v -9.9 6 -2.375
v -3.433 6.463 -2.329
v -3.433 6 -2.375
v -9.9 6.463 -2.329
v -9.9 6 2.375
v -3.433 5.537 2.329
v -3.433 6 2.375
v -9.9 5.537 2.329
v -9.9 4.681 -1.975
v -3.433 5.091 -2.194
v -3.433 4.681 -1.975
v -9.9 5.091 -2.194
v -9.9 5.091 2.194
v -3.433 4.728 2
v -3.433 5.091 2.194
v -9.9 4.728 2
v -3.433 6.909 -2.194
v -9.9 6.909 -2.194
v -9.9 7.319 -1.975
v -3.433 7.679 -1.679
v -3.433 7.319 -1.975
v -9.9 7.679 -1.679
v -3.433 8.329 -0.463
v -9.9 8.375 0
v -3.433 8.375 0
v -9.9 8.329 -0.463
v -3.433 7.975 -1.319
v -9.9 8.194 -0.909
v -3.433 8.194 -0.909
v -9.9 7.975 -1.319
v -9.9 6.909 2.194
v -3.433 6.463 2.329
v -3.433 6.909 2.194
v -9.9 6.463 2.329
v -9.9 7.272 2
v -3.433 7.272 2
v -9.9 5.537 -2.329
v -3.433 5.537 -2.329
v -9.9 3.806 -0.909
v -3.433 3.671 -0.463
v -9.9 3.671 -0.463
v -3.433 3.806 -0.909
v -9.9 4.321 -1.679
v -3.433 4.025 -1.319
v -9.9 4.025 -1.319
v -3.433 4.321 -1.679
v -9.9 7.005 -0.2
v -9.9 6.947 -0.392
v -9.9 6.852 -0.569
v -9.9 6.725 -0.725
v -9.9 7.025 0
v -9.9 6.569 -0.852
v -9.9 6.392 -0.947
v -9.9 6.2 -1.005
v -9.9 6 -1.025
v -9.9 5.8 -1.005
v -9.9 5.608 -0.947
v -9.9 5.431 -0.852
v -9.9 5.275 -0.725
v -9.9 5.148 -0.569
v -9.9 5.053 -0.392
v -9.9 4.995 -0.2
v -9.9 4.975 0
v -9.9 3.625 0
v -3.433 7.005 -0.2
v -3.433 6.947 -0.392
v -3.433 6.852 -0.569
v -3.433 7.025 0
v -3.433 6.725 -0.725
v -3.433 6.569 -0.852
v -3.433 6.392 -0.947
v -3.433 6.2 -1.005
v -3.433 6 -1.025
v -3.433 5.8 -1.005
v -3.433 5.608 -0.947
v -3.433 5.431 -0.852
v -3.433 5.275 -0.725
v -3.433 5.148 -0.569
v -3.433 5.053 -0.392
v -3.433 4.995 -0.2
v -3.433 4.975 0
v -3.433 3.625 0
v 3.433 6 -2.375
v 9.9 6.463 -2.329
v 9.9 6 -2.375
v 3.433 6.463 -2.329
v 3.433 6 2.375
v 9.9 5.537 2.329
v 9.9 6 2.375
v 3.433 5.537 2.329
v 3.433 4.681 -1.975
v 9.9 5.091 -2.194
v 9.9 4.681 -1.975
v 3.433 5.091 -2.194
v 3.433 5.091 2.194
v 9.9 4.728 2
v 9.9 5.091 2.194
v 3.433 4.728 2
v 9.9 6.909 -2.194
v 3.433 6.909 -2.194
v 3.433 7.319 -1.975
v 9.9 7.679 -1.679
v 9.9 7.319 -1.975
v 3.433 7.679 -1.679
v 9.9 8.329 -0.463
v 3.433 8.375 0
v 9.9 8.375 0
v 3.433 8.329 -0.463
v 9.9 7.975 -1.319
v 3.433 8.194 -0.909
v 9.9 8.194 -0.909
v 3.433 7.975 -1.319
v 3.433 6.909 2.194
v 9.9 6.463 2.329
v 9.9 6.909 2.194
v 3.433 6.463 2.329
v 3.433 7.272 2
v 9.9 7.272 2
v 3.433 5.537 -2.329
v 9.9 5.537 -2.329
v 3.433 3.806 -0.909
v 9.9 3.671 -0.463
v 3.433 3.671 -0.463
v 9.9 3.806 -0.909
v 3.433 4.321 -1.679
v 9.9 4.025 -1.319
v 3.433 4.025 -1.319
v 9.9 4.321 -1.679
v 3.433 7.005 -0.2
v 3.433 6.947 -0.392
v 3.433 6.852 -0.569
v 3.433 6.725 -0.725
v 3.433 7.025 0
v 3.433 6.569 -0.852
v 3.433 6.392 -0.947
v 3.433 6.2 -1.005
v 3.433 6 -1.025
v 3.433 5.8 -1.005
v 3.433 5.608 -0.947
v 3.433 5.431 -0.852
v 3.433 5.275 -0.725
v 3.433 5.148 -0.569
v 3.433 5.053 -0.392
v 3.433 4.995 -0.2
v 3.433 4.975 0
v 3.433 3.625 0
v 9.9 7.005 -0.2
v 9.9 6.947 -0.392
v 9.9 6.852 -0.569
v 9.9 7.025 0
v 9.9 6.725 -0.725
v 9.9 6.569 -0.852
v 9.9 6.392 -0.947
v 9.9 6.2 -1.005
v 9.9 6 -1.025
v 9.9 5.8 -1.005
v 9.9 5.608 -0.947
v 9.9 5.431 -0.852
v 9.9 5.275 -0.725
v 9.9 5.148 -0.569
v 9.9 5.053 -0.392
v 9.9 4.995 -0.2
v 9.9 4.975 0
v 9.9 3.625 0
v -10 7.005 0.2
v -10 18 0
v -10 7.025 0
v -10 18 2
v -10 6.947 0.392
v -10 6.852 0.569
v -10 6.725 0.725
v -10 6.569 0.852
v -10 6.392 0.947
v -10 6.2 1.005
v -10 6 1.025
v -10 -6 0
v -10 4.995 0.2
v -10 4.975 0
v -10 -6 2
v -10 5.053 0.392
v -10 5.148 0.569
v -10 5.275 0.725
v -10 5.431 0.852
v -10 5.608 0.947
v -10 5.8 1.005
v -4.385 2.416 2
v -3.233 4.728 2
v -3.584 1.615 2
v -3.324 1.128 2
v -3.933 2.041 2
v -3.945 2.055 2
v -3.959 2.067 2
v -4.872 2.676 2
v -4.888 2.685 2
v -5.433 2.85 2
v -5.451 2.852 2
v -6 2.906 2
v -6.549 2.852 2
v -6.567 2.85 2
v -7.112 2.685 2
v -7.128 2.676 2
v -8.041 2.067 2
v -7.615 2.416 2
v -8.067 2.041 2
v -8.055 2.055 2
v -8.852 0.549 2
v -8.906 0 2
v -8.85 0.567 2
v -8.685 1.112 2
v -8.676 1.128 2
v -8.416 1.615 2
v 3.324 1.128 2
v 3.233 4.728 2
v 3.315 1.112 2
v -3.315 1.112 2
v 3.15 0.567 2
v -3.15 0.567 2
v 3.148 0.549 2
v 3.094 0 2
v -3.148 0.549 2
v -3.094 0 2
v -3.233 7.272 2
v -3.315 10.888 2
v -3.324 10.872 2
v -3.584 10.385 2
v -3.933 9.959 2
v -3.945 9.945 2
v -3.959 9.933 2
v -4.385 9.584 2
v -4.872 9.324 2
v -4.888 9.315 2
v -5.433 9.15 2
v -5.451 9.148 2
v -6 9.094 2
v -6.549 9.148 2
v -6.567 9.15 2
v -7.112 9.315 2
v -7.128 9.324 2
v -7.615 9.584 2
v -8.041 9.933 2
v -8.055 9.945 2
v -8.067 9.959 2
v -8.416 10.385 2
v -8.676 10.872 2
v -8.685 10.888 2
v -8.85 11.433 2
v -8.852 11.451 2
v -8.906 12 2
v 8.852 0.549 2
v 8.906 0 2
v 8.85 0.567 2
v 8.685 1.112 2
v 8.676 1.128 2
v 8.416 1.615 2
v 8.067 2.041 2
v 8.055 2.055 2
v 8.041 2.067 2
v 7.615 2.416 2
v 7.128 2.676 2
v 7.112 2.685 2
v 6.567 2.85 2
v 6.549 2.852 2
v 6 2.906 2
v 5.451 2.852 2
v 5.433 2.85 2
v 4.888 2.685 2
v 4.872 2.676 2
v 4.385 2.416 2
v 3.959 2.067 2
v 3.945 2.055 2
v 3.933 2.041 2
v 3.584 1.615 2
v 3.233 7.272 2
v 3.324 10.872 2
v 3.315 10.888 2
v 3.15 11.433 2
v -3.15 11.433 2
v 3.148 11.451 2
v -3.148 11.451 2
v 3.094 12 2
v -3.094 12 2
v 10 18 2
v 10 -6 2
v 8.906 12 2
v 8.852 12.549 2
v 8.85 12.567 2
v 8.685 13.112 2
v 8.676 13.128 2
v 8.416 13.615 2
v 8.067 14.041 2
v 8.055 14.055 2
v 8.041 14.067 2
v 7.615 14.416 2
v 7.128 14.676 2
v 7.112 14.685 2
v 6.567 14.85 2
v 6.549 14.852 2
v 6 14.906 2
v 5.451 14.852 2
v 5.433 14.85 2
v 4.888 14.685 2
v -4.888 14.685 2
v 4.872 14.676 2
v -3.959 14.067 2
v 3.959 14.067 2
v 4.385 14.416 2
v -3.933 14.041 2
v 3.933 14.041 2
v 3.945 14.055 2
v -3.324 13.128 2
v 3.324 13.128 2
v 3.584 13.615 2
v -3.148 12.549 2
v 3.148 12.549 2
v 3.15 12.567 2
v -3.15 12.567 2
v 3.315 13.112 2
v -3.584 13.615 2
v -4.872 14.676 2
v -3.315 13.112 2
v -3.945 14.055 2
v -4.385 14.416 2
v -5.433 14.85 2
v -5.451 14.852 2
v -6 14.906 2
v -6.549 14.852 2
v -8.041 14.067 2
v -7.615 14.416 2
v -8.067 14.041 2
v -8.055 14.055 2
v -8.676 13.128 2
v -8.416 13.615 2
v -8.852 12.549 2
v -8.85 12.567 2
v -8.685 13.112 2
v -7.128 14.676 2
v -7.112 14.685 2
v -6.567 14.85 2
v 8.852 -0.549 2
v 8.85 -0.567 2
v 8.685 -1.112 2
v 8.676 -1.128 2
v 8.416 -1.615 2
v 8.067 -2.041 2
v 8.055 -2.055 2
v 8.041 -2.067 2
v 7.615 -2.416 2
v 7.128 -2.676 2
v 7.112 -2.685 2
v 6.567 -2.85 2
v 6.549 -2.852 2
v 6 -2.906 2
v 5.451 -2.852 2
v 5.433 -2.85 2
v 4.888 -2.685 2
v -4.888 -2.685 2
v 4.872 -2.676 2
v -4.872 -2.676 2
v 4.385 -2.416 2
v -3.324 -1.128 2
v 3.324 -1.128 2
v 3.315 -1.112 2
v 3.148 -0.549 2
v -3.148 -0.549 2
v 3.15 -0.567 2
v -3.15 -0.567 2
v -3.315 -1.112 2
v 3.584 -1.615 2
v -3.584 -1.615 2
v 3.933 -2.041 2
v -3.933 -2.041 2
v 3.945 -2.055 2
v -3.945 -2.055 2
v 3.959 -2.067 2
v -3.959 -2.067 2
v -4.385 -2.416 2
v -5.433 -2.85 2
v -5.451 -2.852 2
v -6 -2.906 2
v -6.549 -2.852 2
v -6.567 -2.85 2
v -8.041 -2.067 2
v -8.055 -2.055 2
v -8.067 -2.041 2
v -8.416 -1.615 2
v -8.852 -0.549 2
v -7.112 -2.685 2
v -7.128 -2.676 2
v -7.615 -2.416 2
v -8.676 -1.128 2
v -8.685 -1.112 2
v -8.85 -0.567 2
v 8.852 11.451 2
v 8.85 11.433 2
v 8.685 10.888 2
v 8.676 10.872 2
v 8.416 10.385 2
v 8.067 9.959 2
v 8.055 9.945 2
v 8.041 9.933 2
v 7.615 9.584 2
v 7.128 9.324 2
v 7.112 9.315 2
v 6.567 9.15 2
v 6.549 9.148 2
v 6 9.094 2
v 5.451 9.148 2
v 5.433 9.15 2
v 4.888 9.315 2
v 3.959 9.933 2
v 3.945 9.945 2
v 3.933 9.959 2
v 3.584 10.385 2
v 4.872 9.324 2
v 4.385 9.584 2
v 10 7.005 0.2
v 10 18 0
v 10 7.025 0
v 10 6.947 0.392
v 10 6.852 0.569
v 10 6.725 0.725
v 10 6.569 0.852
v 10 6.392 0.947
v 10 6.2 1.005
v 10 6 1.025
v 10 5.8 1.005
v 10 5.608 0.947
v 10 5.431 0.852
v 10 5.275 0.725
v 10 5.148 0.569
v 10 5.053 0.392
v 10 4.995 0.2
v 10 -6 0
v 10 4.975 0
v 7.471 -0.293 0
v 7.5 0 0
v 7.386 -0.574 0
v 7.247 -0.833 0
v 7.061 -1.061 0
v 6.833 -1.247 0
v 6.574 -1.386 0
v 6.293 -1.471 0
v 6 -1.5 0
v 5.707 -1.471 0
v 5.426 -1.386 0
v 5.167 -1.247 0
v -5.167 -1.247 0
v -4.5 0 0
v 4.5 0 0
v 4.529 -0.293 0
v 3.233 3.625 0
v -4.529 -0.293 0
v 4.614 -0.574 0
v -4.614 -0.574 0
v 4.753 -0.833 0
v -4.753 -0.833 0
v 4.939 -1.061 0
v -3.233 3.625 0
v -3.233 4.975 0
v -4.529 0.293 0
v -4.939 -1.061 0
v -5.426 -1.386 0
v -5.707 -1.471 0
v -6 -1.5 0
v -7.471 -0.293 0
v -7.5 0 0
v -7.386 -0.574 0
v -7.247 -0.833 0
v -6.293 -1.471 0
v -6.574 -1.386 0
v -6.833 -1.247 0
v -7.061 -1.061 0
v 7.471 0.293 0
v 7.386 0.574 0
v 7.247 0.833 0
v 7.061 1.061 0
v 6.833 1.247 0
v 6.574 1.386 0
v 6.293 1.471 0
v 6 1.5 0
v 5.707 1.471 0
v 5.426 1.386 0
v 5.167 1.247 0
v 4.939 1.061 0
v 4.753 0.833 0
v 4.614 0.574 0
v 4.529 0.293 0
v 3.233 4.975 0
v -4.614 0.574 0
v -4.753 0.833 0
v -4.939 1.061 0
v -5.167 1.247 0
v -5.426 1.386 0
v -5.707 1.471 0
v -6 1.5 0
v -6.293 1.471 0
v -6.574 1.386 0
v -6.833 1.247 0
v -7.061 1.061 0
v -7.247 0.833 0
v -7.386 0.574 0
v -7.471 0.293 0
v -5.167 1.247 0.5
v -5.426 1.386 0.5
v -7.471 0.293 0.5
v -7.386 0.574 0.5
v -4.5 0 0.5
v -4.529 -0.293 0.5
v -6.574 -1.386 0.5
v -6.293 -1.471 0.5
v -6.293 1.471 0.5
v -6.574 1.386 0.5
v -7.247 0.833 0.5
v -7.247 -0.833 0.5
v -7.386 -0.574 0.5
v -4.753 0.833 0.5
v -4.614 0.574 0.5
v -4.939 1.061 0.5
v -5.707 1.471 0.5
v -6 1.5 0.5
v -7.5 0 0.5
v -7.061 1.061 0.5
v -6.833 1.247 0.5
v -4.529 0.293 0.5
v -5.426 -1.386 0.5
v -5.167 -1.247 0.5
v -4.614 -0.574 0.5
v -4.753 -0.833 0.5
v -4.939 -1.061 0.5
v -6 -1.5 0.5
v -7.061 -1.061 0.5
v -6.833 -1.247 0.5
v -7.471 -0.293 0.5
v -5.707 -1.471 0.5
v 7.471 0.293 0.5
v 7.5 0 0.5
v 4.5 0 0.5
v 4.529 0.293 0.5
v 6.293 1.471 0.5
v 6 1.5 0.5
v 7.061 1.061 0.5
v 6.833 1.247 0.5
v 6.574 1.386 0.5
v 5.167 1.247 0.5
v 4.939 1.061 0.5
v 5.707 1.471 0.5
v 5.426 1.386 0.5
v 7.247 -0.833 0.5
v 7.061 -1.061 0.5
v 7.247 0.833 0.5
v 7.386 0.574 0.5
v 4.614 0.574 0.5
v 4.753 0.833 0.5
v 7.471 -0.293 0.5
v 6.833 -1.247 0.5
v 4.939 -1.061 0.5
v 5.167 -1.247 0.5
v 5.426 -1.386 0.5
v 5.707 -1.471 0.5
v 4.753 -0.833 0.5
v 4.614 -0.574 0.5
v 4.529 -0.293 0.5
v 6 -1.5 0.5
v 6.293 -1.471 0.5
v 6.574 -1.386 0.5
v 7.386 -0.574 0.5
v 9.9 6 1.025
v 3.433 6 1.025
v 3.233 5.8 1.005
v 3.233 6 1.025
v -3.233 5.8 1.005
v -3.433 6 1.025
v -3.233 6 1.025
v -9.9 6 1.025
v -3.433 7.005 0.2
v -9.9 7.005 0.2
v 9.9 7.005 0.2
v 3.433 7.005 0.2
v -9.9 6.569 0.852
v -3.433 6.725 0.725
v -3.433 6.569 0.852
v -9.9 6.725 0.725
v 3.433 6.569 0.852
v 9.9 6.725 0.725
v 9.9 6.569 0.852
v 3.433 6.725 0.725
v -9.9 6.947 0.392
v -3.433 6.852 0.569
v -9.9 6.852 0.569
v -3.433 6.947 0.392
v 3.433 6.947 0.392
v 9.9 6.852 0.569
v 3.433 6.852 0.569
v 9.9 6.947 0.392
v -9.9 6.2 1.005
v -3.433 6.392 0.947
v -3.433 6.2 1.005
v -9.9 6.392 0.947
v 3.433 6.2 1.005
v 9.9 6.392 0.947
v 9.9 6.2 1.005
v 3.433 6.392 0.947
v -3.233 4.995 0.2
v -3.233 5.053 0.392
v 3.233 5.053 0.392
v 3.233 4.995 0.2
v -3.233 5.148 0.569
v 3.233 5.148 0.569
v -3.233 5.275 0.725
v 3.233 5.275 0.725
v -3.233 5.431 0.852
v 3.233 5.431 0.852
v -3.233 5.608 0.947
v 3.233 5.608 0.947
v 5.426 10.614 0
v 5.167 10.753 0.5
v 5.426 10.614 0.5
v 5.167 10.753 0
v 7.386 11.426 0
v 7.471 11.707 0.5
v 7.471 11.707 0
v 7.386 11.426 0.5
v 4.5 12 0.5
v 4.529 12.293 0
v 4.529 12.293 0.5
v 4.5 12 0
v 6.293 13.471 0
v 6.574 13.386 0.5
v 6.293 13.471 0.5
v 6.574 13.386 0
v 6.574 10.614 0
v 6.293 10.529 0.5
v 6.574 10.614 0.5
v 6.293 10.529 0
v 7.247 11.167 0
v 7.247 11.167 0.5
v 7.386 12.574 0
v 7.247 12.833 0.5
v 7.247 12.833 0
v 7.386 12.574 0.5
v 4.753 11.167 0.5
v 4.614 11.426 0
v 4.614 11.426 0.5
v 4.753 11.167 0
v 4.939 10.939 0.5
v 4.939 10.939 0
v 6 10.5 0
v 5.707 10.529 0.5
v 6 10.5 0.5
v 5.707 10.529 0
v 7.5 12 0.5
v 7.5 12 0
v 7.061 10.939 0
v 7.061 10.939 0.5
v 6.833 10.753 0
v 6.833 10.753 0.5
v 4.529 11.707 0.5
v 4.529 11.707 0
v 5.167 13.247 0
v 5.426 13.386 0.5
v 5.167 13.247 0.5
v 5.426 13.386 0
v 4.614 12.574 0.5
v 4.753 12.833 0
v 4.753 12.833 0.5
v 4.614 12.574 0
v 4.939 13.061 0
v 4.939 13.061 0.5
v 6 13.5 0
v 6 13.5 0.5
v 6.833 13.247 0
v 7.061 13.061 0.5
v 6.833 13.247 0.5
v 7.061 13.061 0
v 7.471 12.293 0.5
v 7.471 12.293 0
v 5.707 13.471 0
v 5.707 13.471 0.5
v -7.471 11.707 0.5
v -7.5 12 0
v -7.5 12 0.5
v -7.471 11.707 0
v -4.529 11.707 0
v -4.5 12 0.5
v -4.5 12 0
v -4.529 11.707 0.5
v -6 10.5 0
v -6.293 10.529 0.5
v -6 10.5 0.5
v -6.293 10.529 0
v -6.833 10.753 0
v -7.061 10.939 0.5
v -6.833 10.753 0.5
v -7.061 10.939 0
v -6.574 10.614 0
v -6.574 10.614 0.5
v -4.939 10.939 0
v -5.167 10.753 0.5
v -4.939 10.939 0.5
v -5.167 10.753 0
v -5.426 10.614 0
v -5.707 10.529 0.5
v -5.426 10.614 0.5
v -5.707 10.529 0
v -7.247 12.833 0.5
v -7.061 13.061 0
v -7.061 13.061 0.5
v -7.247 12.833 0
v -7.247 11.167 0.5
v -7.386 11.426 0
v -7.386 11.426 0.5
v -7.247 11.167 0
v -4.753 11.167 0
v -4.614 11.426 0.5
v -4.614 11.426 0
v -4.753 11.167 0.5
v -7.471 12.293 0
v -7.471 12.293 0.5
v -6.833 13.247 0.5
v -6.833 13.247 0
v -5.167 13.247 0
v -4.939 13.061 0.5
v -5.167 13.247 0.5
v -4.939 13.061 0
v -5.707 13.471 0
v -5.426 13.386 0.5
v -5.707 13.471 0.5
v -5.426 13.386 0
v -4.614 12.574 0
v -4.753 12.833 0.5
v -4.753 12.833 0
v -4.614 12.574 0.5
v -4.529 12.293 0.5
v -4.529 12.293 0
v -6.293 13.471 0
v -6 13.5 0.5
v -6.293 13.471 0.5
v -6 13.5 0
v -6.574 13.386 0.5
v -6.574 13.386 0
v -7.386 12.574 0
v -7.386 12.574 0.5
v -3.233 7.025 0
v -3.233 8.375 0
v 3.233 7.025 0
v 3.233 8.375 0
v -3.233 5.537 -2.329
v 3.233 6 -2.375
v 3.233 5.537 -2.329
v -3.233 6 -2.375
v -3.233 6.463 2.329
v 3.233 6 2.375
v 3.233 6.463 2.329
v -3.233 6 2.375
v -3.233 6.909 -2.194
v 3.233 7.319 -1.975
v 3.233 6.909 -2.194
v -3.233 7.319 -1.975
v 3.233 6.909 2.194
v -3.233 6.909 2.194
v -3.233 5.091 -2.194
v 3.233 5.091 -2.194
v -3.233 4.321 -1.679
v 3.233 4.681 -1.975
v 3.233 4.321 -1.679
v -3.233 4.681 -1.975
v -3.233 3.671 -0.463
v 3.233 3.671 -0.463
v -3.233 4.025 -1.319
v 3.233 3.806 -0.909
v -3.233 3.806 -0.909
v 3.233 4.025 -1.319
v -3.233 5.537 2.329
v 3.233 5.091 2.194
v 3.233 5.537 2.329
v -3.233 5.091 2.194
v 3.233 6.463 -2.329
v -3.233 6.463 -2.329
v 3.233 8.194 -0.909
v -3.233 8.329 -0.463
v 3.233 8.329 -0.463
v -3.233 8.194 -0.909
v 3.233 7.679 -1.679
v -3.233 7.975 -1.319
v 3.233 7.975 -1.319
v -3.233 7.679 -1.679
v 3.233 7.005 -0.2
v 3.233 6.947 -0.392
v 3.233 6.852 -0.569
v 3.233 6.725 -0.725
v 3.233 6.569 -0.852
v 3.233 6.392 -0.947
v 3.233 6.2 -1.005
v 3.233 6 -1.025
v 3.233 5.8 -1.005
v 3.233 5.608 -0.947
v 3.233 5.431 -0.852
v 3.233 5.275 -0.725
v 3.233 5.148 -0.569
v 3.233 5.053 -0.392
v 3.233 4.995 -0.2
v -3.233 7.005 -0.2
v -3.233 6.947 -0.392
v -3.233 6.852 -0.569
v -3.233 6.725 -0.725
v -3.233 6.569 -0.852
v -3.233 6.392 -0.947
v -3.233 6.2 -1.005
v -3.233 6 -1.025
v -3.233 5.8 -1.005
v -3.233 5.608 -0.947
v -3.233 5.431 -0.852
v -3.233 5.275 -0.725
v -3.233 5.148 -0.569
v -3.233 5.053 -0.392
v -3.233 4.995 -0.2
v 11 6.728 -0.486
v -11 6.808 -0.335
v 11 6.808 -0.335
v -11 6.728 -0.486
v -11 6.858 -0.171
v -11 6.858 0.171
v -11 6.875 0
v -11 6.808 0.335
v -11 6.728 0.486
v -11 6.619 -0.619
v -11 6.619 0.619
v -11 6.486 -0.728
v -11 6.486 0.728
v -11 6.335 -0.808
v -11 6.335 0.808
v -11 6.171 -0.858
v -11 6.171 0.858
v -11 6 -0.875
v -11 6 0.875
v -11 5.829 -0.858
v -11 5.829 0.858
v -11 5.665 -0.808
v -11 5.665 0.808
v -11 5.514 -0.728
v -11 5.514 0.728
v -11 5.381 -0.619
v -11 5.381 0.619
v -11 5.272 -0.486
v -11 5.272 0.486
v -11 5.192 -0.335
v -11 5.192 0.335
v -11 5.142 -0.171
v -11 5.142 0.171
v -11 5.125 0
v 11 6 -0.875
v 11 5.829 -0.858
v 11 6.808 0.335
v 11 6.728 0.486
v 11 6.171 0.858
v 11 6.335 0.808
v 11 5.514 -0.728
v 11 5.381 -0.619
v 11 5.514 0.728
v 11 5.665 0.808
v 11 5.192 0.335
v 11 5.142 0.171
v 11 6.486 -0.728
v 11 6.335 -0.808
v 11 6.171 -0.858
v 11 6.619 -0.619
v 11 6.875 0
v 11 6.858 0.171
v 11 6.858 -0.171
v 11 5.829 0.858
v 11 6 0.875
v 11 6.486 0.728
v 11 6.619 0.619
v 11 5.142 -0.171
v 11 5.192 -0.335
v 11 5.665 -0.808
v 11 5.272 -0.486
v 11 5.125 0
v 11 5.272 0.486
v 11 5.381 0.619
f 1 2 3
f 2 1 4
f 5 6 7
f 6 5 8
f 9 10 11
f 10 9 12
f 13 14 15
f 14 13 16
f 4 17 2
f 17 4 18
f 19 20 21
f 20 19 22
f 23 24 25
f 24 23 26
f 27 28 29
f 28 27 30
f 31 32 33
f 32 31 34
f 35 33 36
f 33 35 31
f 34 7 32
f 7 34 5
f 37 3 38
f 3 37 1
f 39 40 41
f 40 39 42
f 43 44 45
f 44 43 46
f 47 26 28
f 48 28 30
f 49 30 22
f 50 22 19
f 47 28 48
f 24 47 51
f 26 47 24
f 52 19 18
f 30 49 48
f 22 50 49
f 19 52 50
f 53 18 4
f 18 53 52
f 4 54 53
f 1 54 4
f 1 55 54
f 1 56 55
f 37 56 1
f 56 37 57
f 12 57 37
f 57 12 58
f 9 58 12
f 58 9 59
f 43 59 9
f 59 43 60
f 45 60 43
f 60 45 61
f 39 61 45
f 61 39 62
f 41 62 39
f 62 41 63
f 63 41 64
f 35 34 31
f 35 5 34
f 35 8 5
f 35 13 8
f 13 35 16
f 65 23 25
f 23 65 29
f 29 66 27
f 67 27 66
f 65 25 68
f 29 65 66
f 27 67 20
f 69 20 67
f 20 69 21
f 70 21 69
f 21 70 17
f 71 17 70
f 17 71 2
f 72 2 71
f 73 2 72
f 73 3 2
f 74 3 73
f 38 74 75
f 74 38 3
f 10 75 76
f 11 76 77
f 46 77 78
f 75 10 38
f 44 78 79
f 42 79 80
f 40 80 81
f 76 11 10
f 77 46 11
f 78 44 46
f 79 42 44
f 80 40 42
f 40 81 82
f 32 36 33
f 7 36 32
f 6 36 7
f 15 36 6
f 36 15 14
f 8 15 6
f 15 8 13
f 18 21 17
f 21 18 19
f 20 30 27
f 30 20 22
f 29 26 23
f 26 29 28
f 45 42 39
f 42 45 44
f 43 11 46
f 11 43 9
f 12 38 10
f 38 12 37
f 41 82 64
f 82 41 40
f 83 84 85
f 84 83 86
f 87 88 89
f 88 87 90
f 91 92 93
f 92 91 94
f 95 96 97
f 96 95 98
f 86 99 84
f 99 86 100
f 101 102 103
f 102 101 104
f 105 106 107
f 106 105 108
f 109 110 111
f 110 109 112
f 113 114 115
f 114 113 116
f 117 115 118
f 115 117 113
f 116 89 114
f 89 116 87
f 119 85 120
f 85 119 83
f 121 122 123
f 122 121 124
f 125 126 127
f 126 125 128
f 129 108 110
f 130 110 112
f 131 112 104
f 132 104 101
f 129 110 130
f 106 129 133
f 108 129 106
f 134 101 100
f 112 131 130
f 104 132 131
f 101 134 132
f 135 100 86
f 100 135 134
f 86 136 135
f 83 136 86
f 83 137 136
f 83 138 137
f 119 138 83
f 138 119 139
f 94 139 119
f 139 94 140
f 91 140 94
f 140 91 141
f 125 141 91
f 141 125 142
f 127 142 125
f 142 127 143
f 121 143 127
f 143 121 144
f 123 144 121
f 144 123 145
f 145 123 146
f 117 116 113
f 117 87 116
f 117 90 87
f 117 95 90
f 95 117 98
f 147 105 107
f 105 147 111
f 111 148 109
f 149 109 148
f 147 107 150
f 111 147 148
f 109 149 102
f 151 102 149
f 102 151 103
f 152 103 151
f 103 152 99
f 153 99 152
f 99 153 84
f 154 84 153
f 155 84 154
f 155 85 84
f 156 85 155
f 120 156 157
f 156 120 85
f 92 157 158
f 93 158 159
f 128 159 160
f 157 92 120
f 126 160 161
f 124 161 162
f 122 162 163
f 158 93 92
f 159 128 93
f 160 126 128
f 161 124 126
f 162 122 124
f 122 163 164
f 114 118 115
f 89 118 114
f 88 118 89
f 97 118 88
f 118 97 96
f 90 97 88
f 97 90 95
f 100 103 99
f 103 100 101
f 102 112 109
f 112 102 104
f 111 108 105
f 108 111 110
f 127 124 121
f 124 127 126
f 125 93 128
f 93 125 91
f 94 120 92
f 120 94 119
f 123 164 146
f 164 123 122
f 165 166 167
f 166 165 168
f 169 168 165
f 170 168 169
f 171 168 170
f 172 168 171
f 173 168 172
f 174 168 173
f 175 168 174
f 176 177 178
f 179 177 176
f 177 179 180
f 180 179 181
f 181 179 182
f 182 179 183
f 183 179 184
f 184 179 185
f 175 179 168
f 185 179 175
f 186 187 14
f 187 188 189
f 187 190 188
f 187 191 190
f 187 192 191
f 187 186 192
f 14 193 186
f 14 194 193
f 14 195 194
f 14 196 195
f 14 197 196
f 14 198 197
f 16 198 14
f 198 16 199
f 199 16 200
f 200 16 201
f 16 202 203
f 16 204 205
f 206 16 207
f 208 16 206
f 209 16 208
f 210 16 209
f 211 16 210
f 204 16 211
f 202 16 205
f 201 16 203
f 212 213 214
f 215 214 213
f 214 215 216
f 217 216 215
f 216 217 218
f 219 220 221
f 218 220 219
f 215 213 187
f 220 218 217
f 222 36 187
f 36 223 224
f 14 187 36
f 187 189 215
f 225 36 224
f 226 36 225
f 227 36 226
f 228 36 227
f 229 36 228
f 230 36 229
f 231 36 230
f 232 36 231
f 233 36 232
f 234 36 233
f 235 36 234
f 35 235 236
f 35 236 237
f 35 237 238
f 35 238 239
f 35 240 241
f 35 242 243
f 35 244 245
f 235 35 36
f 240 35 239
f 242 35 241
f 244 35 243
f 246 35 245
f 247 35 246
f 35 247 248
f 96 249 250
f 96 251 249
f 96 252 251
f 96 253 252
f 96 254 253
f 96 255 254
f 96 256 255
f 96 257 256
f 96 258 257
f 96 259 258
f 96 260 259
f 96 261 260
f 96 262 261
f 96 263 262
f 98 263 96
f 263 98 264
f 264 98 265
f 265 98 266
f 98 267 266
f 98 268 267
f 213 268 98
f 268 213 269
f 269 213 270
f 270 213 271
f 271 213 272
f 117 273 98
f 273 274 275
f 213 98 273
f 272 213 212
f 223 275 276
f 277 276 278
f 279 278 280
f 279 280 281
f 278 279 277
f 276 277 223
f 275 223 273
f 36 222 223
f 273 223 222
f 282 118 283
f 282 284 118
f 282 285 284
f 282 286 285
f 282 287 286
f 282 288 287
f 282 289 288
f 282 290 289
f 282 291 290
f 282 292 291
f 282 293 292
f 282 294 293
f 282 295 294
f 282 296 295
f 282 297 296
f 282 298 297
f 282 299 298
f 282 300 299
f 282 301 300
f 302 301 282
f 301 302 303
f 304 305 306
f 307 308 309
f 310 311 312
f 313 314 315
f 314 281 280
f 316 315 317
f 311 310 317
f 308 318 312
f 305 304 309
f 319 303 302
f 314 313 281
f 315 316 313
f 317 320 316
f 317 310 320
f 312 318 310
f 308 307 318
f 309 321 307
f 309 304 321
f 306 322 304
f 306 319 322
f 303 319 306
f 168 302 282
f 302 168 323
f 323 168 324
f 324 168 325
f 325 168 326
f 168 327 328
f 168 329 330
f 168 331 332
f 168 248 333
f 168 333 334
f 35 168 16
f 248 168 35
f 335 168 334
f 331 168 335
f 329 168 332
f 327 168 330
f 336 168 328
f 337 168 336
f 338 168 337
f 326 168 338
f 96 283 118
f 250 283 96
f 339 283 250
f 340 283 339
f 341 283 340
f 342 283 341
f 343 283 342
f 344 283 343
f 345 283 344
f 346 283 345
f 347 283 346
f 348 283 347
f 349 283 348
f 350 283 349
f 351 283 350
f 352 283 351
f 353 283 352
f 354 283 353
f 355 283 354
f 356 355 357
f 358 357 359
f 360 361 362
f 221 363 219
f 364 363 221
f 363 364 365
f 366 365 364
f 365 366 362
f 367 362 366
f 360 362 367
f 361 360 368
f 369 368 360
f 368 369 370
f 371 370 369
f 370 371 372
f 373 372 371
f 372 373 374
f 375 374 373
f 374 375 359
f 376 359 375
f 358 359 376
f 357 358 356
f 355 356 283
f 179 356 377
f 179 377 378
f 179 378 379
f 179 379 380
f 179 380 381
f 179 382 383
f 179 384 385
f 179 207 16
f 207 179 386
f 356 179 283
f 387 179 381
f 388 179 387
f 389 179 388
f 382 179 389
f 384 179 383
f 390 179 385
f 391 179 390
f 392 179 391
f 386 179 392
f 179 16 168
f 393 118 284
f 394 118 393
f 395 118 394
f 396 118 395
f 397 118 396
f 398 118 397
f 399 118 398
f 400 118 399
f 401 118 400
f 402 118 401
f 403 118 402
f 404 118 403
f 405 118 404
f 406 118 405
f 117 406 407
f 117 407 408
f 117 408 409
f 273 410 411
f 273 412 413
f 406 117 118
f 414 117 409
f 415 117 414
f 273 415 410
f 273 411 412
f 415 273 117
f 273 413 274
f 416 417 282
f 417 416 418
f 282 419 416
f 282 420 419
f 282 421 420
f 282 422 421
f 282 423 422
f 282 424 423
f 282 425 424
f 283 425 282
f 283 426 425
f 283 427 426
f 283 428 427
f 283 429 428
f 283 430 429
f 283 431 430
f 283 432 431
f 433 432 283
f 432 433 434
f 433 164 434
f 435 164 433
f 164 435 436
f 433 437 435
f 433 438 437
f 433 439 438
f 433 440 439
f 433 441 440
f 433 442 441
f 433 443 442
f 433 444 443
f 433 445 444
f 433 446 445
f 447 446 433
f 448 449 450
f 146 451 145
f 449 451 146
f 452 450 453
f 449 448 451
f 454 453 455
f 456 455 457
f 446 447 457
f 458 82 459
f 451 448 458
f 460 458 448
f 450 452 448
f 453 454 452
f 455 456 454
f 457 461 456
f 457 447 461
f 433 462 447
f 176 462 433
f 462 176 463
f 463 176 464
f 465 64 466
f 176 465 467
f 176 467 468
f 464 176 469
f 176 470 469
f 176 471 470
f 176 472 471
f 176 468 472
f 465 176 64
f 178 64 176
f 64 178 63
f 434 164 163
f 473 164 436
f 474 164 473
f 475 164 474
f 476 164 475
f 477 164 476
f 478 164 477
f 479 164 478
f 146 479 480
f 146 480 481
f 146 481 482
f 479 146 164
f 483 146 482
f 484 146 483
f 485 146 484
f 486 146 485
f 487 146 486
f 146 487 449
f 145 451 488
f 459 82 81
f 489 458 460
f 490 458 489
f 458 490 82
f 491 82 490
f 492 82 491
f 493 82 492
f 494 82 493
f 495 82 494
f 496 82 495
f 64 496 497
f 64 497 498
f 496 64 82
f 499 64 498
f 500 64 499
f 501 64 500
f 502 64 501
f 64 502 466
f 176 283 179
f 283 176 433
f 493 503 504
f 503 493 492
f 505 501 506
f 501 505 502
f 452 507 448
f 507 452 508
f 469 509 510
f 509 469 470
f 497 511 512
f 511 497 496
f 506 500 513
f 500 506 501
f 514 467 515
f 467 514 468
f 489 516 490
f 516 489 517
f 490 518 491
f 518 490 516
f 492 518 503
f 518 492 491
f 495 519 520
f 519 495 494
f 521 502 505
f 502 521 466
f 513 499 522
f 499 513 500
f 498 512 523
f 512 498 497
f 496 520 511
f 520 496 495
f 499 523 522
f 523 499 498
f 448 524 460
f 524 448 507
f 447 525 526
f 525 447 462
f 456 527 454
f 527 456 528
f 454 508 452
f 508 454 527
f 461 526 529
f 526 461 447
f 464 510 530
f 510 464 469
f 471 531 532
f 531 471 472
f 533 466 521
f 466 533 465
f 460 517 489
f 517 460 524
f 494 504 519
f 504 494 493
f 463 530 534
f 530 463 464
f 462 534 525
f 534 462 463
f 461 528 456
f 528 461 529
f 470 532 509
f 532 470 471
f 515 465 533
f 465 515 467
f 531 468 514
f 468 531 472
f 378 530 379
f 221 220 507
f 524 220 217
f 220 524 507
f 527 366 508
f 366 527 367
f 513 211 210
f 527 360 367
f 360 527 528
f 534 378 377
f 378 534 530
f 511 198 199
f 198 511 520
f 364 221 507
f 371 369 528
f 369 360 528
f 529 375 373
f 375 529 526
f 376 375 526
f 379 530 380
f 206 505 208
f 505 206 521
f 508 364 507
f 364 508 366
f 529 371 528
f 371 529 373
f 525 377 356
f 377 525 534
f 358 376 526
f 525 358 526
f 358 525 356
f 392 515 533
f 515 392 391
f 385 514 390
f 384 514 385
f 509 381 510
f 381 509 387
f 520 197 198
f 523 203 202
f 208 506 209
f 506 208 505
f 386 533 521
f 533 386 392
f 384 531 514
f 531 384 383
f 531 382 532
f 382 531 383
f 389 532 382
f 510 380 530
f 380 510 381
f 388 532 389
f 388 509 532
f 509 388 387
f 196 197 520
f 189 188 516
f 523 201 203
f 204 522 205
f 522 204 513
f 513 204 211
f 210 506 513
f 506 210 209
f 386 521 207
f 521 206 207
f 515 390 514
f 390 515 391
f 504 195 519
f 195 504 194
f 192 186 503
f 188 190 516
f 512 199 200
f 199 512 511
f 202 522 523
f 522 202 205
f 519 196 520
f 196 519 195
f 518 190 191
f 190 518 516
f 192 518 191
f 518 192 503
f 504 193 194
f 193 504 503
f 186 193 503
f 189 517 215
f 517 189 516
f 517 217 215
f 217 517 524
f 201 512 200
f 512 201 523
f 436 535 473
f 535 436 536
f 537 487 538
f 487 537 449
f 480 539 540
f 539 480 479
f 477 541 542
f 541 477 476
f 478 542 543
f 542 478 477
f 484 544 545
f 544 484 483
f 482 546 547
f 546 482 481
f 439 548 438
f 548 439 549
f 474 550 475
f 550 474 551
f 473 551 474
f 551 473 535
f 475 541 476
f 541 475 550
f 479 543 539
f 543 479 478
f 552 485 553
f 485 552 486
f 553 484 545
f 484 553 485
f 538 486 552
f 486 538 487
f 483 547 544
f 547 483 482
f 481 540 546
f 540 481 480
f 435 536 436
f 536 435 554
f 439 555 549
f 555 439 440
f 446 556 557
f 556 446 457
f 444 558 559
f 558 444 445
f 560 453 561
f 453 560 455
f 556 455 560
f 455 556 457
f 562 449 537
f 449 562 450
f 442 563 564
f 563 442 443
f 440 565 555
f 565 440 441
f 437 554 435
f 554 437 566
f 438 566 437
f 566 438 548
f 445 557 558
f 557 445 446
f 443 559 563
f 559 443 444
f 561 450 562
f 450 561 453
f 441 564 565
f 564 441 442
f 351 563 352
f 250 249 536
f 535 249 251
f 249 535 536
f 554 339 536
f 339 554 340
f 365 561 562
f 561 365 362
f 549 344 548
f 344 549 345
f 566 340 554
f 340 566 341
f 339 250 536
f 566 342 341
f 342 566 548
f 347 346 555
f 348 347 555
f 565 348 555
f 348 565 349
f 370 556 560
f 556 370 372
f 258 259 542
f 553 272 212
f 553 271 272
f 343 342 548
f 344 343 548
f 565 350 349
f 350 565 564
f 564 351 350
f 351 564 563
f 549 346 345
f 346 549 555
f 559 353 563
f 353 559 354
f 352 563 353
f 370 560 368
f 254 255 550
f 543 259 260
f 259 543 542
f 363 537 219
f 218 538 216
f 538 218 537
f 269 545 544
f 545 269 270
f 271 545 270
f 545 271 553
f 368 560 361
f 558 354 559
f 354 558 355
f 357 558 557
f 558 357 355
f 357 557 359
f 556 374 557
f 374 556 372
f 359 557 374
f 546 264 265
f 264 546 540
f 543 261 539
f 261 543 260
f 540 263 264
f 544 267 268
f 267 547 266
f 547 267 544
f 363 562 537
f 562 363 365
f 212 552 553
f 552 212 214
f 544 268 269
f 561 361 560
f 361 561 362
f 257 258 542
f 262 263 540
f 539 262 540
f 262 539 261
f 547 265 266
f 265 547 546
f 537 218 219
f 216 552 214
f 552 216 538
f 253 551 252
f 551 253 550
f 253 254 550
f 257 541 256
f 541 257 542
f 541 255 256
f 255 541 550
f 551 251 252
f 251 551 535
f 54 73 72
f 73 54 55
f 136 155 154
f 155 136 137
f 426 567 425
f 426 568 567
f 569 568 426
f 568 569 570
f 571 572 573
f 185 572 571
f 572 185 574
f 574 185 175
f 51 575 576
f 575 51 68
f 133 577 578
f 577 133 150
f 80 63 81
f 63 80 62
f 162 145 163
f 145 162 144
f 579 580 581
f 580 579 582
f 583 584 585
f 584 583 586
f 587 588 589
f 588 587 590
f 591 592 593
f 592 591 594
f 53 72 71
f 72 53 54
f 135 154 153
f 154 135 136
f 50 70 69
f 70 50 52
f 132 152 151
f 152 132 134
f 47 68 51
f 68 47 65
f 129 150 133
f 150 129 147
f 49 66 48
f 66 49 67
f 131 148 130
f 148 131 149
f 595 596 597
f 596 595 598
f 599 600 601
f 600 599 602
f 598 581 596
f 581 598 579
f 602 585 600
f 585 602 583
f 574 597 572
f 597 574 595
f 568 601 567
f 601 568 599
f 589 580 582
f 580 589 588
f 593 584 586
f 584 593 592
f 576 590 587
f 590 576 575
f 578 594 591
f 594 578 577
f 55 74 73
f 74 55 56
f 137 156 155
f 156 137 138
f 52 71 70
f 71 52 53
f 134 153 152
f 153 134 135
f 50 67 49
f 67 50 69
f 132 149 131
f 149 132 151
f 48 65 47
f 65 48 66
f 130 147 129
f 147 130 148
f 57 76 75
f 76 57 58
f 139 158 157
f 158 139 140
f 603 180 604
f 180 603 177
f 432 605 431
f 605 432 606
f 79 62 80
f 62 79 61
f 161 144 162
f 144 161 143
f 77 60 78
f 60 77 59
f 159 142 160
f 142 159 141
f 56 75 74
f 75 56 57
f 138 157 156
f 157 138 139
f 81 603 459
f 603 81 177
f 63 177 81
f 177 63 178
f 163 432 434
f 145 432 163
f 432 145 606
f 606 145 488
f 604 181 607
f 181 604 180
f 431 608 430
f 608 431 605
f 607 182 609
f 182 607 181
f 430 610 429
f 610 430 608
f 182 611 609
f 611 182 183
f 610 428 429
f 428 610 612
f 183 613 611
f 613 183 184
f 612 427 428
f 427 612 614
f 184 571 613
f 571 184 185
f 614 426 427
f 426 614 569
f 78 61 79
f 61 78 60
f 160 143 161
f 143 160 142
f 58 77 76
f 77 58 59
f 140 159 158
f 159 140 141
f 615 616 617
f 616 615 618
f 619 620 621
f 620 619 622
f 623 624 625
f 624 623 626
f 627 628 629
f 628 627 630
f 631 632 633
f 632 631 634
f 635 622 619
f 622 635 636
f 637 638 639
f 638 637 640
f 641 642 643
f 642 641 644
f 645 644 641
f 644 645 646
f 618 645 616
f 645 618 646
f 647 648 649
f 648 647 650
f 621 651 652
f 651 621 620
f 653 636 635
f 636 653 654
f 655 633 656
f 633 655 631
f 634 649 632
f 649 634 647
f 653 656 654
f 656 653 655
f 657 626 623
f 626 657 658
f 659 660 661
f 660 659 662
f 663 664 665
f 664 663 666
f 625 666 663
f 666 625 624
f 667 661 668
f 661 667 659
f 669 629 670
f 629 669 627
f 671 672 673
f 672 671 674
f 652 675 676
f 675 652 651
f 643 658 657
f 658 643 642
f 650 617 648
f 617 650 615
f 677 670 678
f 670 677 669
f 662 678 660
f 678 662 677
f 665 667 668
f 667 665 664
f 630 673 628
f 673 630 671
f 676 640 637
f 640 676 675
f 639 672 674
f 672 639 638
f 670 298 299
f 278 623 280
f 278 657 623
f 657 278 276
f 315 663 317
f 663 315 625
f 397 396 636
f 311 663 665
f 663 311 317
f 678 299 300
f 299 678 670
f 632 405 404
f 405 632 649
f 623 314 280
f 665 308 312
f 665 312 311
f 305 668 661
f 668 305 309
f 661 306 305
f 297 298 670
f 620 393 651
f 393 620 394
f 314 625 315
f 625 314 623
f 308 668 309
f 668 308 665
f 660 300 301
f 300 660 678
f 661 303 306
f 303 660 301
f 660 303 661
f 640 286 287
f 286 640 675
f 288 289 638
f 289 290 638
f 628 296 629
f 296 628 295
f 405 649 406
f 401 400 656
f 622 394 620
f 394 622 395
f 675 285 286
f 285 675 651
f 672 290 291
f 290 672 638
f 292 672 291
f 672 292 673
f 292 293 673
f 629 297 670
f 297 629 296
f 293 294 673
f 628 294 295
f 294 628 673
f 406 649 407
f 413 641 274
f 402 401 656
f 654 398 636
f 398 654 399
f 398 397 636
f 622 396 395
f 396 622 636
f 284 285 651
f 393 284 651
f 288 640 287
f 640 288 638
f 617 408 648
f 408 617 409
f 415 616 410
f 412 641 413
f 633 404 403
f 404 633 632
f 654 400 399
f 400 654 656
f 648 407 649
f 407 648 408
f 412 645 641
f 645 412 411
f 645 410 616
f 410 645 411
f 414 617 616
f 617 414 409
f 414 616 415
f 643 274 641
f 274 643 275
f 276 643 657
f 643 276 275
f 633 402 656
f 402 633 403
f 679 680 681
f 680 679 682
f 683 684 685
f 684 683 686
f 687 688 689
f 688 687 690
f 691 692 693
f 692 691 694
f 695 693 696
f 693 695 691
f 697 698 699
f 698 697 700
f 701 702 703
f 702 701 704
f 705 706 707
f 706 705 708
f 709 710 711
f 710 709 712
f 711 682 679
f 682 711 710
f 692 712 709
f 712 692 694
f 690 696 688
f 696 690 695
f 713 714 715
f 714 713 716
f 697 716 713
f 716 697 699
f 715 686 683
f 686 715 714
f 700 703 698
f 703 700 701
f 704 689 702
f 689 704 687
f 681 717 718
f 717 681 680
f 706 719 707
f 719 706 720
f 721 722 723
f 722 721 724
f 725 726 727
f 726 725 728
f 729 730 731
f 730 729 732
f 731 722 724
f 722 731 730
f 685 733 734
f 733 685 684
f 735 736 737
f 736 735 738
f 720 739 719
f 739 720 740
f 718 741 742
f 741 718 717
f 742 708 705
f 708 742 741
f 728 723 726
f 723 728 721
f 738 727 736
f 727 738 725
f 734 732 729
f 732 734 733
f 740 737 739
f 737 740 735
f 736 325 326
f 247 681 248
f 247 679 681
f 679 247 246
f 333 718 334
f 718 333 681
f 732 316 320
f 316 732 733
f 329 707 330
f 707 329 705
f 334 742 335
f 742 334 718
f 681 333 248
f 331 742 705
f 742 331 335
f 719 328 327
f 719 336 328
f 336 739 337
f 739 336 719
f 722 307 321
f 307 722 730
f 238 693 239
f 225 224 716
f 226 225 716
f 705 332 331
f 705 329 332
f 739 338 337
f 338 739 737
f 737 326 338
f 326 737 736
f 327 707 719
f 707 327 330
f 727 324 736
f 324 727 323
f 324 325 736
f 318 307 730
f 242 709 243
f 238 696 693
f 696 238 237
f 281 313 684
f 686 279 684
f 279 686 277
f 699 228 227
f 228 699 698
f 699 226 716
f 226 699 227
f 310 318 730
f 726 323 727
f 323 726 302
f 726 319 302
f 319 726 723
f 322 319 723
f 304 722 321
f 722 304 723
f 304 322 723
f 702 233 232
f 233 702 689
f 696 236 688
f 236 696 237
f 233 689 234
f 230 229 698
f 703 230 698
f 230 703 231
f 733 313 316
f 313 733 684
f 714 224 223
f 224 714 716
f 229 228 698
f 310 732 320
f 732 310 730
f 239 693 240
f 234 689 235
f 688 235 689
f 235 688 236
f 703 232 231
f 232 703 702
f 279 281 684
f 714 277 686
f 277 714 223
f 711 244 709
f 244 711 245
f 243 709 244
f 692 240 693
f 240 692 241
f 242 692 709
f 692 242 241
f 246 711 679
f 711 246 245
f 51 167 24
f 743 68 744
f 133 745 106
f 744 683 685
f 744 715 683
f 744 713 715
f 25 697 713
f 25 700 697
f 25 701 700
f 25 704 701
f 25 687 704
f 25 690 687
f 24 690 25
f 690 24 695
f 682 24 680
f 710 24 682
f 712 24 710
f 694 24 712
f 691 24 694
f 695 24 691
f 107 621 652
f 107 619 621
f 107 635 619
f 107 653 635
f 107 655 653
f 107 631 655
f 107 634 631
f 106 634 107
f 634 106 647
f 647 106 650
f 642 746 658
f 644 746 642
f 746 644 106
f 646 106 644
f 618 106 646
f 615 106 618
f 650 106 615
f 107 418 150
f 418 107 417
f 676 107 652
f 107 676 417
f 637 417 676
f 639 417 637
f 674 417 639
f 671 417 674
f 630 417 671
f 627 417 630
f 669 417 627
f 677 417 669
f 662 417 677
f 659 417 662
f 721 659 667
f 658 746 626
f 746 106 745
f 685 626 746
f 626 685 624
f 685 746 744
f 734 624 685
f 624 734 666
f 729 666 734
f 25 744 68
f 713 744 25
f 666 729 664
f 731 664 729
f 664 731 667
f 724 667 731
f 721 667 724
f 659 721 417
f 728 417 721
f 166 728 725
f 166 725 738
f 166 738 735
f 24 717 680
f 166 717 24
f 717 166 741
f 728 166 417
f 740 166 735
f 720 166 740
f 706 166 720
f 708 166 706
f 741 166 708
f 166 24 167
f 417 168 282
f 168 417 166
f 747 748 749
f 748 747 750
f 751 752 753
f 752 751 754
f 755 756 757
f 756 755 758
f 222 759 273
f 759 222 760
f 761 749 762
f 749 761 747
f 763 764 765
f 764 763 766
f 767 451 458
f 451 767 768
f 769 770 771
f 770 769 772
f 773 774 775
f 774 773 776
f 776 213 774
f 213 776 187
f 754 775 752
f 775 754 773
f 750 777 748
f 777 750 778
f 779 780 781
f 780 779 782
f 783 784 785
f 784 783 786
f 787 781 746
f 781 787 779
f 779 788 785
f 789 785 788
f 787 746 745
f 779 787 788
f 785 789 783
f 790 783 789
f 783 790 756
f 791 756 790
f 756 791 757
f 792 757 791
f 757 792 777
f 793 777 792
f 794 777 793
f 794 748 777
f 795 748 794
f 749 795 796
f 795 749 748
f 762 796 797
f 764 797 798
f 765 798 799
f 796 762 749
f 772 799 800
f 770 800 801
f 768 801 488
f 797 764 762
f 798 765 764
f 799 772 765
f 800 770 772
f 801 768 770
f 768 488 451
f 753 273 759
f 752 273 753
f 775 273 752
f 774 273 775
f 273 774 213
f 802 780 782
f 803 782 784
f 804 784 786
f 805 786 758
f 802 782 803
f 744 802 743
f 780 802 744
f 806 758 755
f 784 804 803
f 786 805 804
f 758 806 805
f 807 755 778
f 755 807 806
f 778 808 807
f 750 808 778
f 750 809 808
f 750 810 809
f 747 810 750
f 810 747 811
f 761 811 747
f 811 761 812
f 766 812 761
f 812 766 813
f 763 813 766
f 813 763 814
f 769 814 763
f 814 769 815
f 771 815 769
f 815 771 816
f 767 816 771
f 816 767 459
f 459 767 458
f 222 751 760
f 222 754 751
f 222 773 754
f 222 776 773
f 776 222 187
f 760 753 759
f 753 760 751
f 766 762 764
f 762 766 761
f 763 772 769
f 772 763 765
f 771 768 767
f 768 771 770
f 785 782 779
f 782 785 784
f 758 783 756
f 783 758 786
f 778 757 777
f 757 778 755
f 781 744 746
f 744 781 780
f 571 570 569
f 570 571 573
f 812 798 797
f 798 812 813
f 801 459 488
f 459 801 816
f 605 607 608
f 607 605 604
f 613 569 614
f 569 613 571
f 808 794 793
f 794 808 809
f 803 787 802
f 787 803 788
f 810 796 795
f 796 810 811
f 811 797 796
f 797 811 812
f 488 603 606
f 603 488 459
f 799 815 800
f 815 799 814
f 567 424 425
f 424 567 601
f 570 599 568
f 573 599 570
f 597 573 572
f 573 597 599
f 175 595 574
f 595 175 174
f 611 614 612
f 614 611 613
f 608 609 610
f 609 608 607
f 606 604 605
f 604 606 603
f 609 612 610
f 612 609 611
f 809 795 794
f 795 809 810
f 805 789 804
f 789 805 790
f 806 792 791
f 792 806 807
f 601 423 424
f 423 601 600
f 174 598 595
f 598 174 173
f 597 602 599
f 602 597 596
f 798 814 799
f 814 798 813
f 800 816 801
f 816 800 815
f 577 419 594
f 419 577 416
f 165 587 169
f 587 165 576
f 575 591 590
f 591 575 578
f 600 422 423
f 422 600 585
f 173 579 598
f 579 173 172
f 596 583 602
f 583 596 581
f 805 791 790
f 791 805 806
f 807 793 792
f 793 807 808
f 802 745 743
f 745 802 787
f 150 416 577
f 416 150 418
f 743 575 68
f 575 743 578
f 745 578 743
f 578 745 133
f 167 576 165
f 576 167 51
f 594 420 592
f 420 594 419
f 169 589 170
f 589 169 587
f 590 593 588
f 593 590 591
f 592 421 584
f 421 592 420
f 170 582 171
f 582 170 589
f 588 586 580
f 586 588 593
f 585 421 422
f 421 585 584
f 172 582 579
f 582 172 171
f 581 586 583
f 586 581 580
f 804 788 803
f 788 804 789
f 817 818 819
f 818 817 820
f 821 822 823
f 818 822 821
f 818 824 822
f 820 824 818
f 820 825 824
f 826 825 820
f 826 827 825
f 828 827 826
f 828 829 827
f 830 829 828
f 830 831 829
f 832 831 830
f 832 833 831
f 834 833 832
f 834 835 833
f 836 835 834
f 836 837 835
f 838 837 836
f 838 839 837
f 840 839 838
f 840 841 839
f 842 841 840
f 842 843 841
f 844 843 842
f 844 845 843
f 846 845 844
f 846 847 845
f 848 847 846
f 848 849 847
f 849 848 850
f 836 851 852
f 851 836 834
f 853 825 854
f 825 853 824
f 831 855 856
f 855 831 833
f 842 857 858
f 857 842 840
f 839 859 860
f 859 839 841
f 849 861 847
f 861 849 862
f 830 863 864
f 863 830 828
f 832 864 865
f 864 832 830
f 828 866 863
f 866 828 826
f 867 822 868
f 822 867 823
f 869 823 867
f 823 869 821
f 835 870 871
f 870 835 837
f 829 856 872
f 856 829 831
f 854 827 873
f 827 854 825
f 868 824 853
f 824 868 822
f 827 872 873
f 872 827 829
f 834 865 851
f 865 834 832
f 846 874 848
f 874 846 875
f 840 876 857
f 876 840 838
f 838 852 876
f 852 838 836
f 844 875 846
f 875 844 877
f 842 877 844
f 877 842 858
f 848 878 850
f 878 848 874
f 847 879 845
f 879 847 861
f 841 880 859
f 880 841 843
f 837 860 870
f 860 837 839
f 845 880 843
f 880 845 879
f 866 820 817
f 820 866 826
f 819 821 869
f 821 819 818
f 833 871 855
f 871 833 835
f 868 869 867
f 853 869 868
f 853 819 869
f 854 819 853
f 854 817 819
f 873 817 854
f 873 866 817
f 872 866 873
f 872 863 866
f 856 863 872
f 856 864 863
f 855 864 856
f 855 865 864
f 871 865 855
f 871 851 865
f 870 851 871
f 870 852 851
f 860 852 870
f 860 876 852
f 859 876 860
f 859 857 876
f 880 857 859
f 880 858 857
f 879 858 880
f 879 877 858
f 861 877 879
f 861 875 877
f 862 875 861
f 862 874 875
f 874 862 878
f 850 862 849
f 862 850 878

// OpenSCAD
// Box Lid Hinge - Filament Pin Design
// For 3mm thick walls, ~20mm total width
// Uses 1.75mm filament as hinge pin

/* [Hinge Parameters] */
wall_thickness = 3;        // Box wall thickness
hinge_width = 20;          // Total hinge width
pin_diameter = 1.75;       // Filament diameter for pin
pin_clearance = 0.3;       // Clearance for pin hole
knuckle_count = 3;         // Number of knuckles (odd for symmetric)

/* [Mounting] */
screw_hole_diameter = 3;   // M3 screw holes
countersink = true;        // Countersink the screw holes

/* [Derived Dimensions] */
knuckle_outer_d = pin_diameter + 3;  // Knuckle outer diameter
plate_thickness = 2;                  // Mounting plate thickness
plate_height = 12;                    // Height of mounting plate
plate_width = hinge_width;

// Knuckle dimensions
knuckle_width = hinge_width / knuckle_count;
pin_hole_d = pin_diameter + pin_clearance;

$fn = 32;

// Main hinge leaf module
module hinge_leaf(is_box_side = true) {
    difference() {
        union() {
            // Mounting plate
            translate([0, 0, plate_thickness/2])
                cube([plate_width, plate_height, plate_thickness], center=true);
            
            // Knuckles
            for (i = [0 : knuckle_count - 1]) {
                // Alternating knuckles between box and lid sides
                if ((i % 2 == 0) == is_box_side) {
                    translate([
                        -hinge_width/2 + knuckle_width/2 + i * knuckle_width,
                        plate_height/2,
                        0
                    ])
                    rotate([0, 90, 0])
                    cylinder(d = knuckle_outer_d, h = knuckle_width - 0.2, center = true);
                }
            }
            
            // Fillet between plate and knuckles
            translate([0, plate_height/2 - knuckle_outer_d/4, plate_thickness/2])
                cube([plate_width, knuckle_outer_d/2, plate_thickness], center=true);
        }
        
        // Pin hole through all knuckles
        translate([0, plate_height/2, 0])
        rotate([0, 90, 0])
        cylinder(d = pin_hole_d, h = hinge_width + 2, center = true);
        
        // Screw holes
        hole_spacing = plate_width * 0.6;
        for (x = [-hole_spacing/2, hole_spacing/2]) {
            translate([x, 0, -1]) {
                // Through hole
                cylinder(d = screw_hole_diameter, h = plate_thickness + 2);
                // Countersink
                if (countersink) {
                    translate([0, 0, plate_thickness + 1 - 1.5])
                    cylinder(d1 = screw_hole_diameter, d2 = screw_hole_diameter + 3, h = 1.6);
                }
            }
        }
    }
}

// Pin (cut from 1.75mm filament)
module pin_reference() {
    color("orange")
    rotate([0, 90, 0])
    cylinder(d = pin_diameter, h = hinge_width + 2, center = true);
}

// Assembly view
module assembly() {
    // Box side leaf
    color("SteelBlue")
    hinge_leaf(is_box_side = true);
    
    // Lid side leaf (rotated to show hinge action)
    color("LightSteelBlue")
    translate([0, plate_height, 0])
    rotate([0, 0, 180])
    hinge_leaf(is_box_side = false);
    
    // Show pin position
    translate([0, plate_height/2, 0])
    pin_reference();
}

// Print layout - both parts flat
module print_layout() {
    // Box side
    translate([0, -plate_height/2 - 2, 0])
    hinge_leaf(is_box_side = true);
    
    // Lid side
    translate([0, plate_height/2 + 2, 0])
    hinge_leaf(is_box_side = false);
}

// Uncomment desired output:

// Show assembled hinge
assembly();

// For printing - uncomment this and comment assembly():
// print_layout();

// Single box-side leaf:
// hinge_leaf(is_box_side = true);

// Single lid-side leaf:
// hinge_leaf(is_box_side = false);
